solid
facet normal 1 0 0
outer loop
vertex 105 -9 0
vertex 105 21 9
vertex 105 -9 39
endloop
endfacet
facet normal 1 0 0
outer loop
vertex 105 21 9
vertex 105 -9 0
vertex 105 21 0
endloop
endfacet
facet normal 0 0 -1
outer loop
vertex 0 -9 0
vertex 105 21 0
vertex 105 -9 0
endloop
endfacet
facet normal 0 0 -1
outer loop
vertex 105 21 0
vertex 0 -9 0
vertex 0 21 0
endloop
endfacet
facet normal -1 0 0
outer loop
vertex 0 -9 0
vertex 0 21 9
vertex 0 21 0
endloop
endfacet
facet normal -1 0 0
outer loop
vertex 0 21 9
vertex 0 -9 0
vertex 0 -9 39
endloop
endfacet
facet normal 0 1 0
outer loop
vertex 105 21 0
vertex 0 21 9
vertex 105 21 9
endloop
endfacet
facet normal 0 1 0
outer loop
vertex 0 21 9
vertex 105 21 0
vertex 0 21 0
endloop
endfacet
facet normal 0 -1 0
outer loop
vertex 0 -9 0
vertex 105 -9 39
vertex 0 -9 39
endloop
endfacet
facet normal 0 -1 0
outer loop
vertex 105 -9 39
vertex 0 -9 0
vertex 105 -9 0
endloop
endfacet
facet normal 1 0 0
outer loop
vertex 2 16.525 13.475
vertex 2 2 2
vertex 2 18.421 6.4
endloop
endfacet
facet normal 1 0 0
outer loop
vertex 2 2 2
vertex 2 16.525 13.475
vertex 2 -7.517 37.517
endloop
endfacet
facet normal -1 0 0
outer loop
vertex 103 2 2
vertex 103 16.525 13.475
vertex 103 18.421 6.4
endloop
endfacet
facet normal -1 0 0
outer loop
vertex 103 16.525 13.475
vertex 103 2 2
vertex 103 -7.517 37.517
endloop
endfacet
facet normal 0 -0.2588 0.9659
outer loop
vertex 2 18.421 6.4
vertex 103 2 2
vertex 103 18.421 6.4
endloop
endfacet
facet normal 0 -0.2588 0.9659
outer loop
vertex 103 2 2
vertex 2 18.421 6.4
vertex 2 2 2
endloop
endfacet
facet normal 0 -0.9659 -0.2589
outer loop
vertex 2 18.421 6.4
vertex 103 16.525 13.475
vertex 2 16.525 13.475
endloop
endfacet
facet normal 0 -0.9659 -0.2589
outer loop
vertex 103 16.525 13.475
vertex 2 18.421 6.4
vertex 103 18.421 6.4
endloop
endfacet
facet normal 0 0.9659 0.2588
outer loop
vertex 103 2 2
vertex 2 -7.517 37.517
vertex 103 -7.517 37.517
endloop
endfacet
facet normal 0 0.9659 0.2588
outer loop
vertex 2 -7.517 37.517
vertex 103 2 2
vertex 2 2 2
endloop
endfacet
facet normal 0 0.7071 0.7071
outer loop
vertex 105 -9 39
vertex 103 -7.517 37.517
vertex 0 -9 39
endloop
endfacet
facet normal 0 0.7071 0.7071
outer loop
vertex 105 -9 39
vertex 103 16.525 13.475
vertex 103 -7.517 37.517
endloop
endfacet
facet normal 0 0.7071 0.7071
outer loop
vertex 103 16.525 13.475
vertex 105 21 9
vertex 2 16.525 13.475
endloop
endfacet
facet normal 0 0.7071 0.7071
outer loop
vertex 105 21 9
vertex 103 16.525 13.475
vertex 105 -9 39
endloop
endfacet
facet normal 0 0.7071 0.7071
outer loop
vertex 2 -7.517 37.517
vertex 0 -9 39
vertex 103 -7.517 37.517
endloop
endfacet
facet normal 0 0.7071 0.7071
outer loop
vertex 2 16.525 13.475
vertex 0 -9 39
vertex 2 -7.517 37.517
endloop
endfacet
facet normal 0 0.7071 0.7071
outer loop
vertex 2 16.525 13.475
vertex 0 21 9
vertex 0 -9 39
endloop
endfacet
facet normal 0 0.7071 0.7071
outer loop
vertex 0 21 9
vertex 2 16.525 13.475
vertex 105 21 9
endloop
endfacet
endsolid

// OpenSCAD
difference() {
  translate([0,-9,0]) cube([105, 30, 40]);
  translate([2, 2, 2]) rotate([15, 0,0]) cube([101,17, 40]);
  translate ([0,30,0]) rotate([45, 0, 0]) cube([120, 120, 100]);
}
